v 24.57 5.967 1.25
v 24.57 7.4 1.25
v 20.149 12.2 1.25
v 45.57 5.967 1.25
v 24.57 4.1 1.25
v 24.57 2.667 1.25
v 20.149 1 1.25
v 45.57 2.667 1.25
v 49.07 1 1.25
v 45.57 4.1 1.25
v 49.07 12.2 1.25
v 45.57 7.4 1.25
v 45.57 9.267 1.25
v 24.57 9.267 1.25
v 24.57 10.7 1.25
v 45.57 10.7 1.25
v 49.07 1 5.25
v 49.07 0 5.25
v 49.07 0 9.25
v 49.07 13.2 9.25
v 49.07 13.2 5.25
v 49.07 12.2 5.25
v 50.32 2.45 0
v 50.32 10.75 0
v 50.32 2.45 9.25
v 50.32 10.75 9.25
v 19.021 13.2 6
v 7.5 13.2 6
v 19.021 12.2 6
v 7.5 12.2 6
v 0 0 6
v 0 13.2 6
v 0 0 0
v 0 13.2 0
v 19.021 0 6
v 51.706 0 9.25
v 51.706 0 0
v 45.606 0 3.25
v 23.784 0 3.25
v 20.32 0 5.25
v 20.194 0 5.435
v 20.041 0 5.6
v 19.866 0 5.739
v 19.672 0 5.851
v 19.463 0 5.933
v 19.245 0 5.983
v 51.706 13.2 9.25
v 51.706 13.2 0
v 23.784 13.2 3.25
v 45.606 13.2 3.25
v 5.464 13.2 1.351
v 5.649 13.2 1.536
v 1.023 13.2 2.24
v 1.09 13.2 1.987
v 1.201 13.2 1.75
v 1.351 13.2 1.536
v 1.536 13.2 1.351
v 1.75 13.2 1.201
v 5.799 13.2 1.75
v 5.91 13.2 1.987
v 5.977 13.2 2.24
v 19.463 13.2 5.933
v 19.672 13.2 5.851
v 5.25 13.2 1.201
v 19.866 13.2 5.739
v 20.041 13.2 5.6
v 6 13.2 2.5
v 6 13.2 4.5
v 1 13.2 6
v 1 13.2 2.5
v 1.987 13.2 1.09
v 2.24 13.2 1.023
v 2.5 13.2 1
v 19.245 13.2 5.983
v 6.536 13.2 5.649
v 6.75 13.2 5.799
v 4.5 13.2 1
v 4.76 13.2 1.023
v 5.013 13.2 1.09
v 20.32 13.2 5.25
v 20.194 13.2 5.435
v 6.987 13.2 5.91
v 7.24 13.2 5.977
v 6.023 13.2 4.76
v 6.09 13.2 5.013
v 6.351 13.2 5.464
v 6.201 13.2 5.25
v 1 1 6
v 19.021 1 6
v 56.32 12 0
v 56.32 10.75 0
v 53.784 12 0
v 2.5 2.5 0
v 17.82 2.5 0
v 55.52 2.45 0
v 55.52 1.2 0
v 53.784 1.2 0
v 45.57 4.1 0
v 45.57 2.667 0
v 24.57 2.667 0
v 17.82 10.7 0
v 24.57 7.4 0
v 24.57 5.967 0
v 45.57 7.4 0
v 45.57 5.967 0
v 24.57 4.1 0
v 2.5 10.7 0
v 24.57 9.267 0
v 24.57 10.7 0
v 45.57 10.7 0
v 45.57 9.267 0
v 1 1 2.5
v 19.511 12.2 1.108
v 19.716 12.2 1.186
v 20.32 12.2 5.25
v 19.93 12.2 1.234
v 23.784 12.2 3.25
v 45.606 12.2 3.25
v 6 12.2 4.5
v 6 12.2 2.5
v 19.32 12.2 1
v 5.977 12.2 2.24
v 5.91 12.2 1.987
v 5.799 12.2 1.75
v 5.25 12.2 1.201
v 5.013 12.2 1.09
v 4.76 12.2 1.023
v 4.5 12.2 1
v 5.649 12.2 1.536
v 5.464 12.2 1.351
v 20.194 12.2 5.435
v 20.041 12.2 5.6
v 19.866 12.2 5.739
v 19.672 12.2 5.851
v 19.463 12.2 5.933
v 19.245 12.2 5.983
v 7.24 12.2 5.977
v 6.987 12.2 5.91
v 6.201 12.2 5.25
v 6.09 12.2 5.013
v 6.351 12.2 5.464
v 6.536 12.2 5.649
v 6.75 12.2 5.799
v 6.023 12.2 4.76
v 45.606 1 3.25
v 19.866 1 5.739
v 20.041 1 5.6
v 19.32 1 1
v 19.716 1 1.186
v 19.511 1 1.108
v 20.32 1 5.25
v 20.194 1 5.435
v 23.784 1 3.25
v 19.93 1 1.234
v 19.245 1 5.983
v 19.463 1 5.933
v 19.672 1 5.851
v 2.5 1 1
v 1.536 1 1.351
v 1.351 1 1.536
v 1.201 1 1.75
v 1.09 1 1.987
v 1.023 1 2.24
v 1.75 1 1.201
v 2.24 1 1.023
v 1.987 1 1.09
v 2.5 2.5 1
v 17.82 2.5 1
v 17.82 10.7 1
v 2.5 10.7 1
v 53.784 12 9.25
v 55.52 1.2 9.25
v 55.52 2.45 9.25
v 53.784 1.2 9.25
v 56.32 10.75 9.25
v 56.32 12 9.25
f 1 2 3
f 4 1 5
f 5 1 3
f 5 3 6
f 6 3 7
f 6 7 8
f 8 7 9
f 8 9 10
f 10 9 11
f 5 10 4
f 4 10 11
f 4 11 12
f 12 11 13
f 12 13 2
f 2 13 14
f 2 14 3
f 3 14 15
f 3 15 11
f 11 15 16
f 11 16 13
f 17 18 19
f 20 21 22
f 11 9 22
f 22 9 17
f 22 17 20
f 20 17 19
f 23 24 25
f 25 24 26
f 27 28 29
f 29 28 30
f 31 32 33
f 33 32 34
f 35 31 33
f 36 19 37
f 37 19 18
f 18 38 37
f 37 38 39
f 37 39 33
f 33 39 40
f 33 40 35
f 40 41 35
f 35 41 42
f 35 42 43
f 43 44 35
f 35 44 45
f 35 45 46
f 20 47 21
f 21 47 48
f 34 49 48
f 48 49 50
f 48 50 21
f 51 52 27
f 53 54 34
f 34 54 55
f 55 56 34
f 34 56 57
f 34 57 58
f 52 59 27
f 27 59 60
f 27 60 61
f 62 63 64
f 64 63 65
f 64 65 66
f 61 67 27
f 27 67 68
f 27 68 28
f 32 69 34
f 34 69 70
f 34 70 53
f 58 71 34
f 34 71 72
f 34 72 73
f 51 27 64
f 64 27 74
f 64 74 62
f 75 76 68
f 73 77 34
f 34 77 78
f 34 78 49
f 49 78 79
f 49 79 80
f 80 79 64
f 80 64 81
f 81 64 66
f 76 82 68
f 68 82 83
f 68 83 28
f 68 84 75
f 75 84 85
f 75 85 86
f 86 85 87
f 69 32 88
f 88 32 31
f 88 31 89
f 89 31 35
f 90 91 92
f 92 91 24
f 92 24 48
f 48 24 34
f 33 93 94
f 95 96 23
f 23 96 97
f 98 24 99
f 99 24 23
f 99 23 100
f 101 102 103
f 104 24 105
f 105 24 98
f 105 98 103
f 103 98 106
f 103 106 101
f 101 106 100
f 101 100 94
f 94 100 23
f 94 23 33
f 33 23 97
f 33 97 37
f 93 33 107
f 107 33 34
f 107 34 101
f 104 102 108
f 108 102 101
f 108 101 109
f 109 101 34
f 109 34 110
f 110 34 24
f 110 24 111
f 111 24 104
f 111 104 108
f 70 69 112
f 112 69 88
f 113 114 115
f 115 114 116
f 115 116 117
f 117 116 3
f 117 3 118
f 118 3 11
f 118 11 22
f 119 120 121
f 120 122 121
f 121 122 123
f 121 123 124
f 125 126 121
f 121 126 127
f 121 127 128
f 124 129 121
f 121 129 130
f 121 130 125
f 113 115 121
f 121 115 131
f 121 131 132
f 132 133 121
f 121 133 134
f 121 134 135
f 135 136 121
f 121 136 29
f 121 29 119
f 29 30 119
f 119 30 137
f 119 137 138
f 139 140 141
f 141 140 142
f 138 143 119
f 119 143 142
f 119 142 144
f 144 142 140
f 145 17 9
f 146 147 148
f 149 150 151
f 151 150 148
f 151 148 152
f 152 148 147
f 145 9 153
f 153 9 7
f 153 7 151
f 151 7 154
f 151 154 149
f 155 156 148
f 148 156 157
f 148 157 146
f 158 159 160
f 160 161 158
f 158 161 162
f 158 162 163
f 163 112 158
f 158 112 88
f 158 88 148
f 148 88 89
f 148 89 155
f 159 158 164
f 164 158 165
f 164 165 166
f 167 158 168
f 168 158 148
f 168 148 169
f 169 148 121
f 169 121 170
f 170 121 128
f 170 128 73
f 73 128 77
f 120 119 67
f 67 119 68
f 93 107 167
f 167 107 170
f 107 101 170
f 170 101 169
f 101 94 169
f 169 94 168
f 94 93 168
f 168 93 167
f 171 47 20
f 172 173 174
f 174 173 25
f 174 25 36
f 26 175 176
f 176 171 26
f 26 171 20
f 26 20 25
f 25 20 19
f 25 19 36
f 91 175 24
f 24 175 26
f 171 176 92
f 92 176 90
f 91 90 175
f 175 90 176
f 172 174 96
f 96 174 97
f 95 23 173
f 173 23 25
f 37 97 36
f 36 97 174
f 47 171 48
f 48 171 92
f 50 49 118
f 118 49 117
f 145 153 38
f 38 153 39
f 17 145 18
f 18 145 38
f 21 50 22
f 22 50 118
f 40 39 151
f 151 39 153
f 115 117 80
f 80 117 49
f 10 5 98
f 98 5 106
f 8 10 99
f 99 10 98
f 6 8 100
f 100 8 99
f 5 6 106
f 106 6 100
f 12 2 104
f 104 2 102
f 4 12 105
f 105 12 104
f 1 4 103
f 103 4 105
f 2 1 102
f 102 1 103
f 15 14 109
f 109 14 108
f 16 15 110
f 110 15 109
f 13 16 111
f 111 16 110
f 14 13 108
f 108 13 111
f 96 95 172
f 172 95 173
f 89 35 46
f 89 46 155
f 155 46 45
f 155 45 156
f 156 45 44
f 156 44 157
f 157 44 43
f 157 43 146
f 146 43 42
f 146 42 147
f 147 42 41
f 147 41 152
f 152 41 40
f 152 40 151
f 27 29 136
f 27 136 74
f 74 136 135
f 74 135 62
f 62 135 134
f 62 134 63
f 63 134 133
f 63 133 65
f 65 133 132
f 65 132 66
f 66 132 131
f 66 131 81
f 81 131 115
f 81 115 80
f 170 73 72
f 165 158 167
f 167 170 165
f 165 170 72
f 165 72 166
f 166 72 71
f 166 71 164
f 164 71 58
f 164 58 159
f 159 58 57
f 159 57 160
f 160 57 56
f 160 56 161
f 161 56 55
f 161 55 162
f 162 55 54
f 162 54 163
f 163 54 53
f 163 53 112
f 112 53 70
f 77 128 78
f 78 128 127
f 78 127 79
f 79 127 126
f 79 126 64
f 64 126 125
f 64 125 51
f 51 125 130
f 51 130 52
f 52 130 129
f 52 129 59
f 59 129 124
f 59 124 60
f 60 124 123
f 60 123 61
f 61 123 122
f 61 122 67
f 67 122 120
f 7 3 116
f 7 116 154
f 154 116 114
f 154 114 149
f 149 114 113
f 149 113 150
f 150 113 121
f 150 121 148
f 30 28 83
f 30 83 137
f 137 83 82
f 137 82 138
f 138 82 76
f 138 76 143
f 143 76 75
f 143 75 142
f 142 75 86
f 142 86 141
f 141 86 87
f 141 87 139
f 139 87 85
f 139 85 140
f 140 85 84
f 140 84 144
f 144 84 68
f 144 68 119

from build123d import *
from OCP.BRepFilletAPI import BRepFilletAPI_MakeChamfer

# Parameters (mm, degrees)
ESQUISSE1_W             = 20.32
ESQUISSE1_H             = 13.2
BOSS_EXTRU_1_DEPTH      = 6
ESQUISSE2_W             = 18.32
ESQUISSE2_H             = 11.2
ENL_V_MAT_EXTRU_1_DEPTH = 5
ESQUISSE3_W             = 5
ESQUISSE3_H             = 1
ENL_V_MAT_EXTRU_2_DEPTH = 5
ESQUISSE4_W             = 15.32
ESQUISSE4_H             = 8.2
ENL_V_MAT_EXTRU_3_DEPTH = 25.741511676
ESQUISSE6_W             = 1
ESQUISSE6_H             = 11.2
ENL_V_MAT_EXTRU_4_DEPTH = 4.75
ESQUISSE7_W             = 30
ESQUISSE7_H             = 13.2
BOSS_EXTRU_2_DEPTH      = 1.25
ESQUISSE8_W             = 1.25
ESQUISSE8_H             = 13.2
BOSS_EXTRU_3_DEPTH      = 8
ESQUISSE9_W             = 9.25
ESQUISSE9_H             = 1.25
BOSS_EXTRU_4_DEPTH      = 6
CHANFREIN1_SIZE         = 2
CHANFREIN1_SIZE_2       = 3.464101615
ESQUISSE10_W            = 28.75
ESQUISSE10_H            = 1
BOSS_EXTRU_5_DEPTH      = 2
CHANFREIN2_SIZE         = 2
CHANFREIN2_SIZE2        = 3.464101615
ESQUISSE11_W            = 21
ESQUISSE11_H            = 1.433492253
ENL_V_MAT_EXTRU_5_DEPTH = 2
ESQUISSE12_W            = 0.8
ESQUISSE12_H            = 9.25
ENL_V_MAT_EXTRU_6_DEPTH = 2
CONG_1_R                = 1.5


with BuildPart() as part:
    # Esquisse1 → Boss.-Extru.1 (new body)
    with BuildSketch(Plane.XY):
        with Locations((10.16, 6.6)):
            Rectangle(ESQUISSE1_W, ESQUISSE1_H)
    extrude(amount=BOSS_EXTRU_1_DEPTH)

    # Esquisse2 → Enlèv. mat.-Extru.1 (cut)
    with BuildSketch(Plane.XY.offset(6)):
        with Locations((10.16, 6.6)):
            Rectangle(ESQUISSE2_W, ESQUISSE2_H)
    extrude(amount=-ENL_V_MAT_EXTRU_1_DEPTH, mode=Mode.SUBTRACT)

    # Esquisse3 → Enlèv. mat.-Extru.2 (cut)
    with BuildSketch(Plane.XY.offset(6)):
        with Locations((3.5, 12.7)):
            Rectangle(ESQUISSE3_W, ESQUISSE3_H)
    extrude(amount=-ENL_V_MAT_EXTRU_2_DEPTH, mode=Mode.SUBTRACT)

    # Esquisse4 → Enlèv. mat.-Extru.3 (cut, through all)
    with BuildSketch(Plane.XY.offset(1)):
        with Locations((10.16, 6.6)):
            Rectangle(ESQUISSE4_W, ESQUISSE4_H)
    extrude(amount=-ENL_V_MAT_EXTRU_3_DEPTH, mode=Mode.SUBTRACT)

    # Esquisse6 → Enlèv. mat.-Extru.4 (cut)
    with BuildSketch(Plane.XY.offset(6)):
        with Locations((19.82, 6.6)):
            Rectangle(ESQUISSE6_W, ESQUISSE6_H)
    extrude(amount=-ENL_V_MAT_EXTRU_4_DEPTH, mode=Mode.SUBTRACT)

    # Esquisse7 → Boss.-Extru.2 (add)
    with BuildSketch(Plane(origin=(0, 0, 0), x_dir=(-1, 0, 0), z_dir=(0, 0, -1))):
        with Locations((-35.32, 6.6)):
            Rectangle(ESQUISSE7_W, ESQUISSE7_H)
    extrude(amount=-BOSS_EXTRU_2_DEPTH)

    # Esquisse8 → Boss.-Extru.3 (add)
    with BuildSketch(Plane.XY.offset(1.25)):
        with Locations((49.695, 6.6)):
            Rectangle(ESQUISSE8_W, ESQUISSE8_H)
    extrude(amount=BOSS_EXTRU_3_DEPTH)

    # Esquisse9 → Boss.-Extru.4 (add)
    with BuildSketch(Plane(origin=(50.32, 0, 0), x_dir=(0, 0, -1), z_dir=(1, 0, 0))):
        with Locations((-4.625, 11.375)):
            Rectangle(ESQUISSE9_W, ESQUISSE9_H)
        with Locations((-4.625, 1.825)):
            Rectangle(ESQUISSE9_W, ESQUISSE9_H)
    extrude(amount=BOSS_EXTRU_4_DEPTH)

    # Chanfrein1
    # the kernel refuses this chamfer: 3.464101615, 2 mm, written as the material it adds along each edge
    with BuildSketch(Plane(origin=(50.32, 12, 9.25), x_dir=(0, 1, 0), z_dir=(0, 0, -1))) as chanfrein1_piece_1_section:
        Polygon((CHANFREIN1_SIZE, 0), (0, CHANFREIN1_SIZE_2), (0, 0), align=None)
    chanfrein1_piece_1 = extrude(amount=9.25, mode=Mode.PRIVATE)
    chanfrein1_piece_1 = split(chanfrein1_piece_1, bisect_by=Plane(origin=(50.32, 13.2, 9.25), z_dir=(0, -1, 0)), keep=Keep.TOP, mode=Mode.PRIVATE)
    add(chanfrein1_piece_1)
    with BuildSketch(Plane(origin=(50.32, 1.2, 0), x_dir=(0, -1, 0), z_dir=(0, 0, 1))) as chanfrein1_piece_2_section:
        Polygon((CHANFREIN1_SIZE, 0), (0, CHANFREIN1_SIZE_2), (0, 0), align=None)
    chanfrein1_piece_2 = extrude(amount=9.25, mode=Mode.PRIVATE)
    chanfrein1_piece_2 = split(chanfrein1_piece_2, bisect_by=Plane(origin=(50.32, 0, 0), z_dir=(0, 1, 0)), keep=Keep.TOP, mode=Mode.PRIVATE)
    add(chanfrein1_piece_2)

    # Esquisse10 → Boss.-Extru.5 (add)
    with BuildSketch(Plane.XY.offset(1.25)):
        with Locations((34.695, 12.7)):
            Rectangle(ESQUISSE10_W, ESQUISSE10_H)
        with Locations((34.695, 0.5)):
            Rectangle(ESQUISSE10_W, ESQUISSE10_H)
    extrude(amount=BOSS_EXTRU_5_DEPTH)

    # Chanfrein2: one chamfer whose edges measure the first distance from different faces: ONE call of the kernel's chamfer builder (chamfer() names one face for all edges)
    chanfrein2_edges_1 = [part.edges().sort_by_distance(p)[0] for p in [
        (20.32, 12.7, 3.25),
    ]]
    chanfrein2_side_1 = [part.faces().sort_by_distance(p)[0] for p in [
        (20.32, 12.7, 4.625),
    ]]
    chanfrein2_edges_2 = [part.edges().sort_by_distance(p)[0] for p in [
        (49.07, 12.7, 3.25),
        (49.07, 0.5, 3.25),
    ]]
    chanfrein2_side_2 = [part.faces().sort_by_distance(p)[0] for p in [
        (49.07, 6.6, 5.368110236),
    ]]
    chanfrein2_edges_3 = [part.edges().sort_by_distance(p)[0] for p in [
        (20.32, 0.5, 3.25),
    ]]
    chanfrein2_side_3 = [part.faces().sort_by_distance(p)[0] for p in [
        (20.32, 0.5, 4.625),
    ]]
    chanfrein2 = BRepFilletAPI_MakeChamfer(part.part.solid().wrapped)
    for e in chanfrein2_edges_1:
        chanfrein2.Add(CHANFREIN2_SIZE, CHANFREIN2_SIZE2, e.wrapped, chanfrein2_side_1[0].wrapped)  # the first distance lies on this face
    for e in chanfrein2_edges_2:
        chanfrein2.Add(CHANFREIN2_SIZE, CHANFREIN2_SIZE2, e.wrapped, chanfrein2_side_2[0].wrapped)  # the first distance lies on this face
    for e in chanfrein2_edges_3:
        chanfrein2.Add(CHANFREIN2_SIZE, CHANFREIN2_SIZE2, e.wrapped, chanfrein2_side_3[0].wrapped)  # the first distance lies on this face
    add(Compound.cast(chanfrein2.Shape()), mode=Mode.REPLACE)

    # Esquisse11 → Enlèv. mat.-Extru.5 (cut)
    with BuildSketch(Plane.XY.offset(1.25)):
        with Locations((35.07, 9.983253874)):
            Rectangle(ESQUISSE11_W, ESQUISSE11_H)
        with Locations((35.07, 6.683253873)):
            Rectangle(ESQUISSE11_W, ESQUISSE11_H)
        with Locations((35.07, 3.383253874)):
            Rectangle(ESQUISSE11_W, ESQUISSE11_H)
    extrude(amount=-ENL_V_MAT_EXTRU_5_DEPTH, mode=Mode.SUBTRACT)

    # Esquisse12 → Enlèv. mat.-Extru.6 (cut)
    with BuildSketch(Plane(origin=(0, 1.2, 0), x_dir=(-1, 0, 0), z_dir=(0, -1, 0))):
        with Locations((-55.92, -4.625)):
            Rectangle(ESQUISSE12_W, ESQUISSE12_H)
    extrude(amount=-ENL_V_MAT_EXTRU_6_DEPTH, mode=Mode.SUBTRACT)

    # Congé1
    # the kernel refuses this fillet: 1.5 mm, written as the material it adds along each edge
    with BuildSketch(Plane(origin=(1, 1, 1), x_dir=(0, 0, 1), z_dir=(0, 1, 0))) as cong_1_piece_1:
        with BuildLine():
            CenterArc((CONG_1_R, CONG_1_R), CONG_1_R, 180, 90)
            Line((0, CONG_1_R), (0, 0))
            Line((0, 0), (CONG_1_R, 0))
        make_face()
    extrude(amount=12.2)
    with BuildSketch(Plane(origin=(6, 12.2, 1), x_dir=(-1, 0, 0), z_dir=(0, 1, 0))) as cong_1_piece_2:
        with BuildLine():
            CenterArc((CONG_1_R, CONG_1_R), CONG_1_R, 180, 90)
            Line((0, CONG_1_R), (0, 0))
            Line((0, 0), (CONG_1_R, 0))
        make_face()
    extrude(amount=1)
    # the kernel refuses this fillet: 1.5 mm, written as the material it takes off along each edge
    with BuildSketch(Plane(origin=(20.32, -3.247595264, 6), x_dir=(-1, 0, 0), z_dir=(0, 1, 0)), Plane(origin=(20.32, 8.952404736, 6), x_dir=(-1, 0, 0), z_dir=(0, 1, 0))) as cong_1_2_piece_1:
        with BuildLine():
            CenterArc((1.299038106, -1.5), CONG_1_R, 90, 60)
            Line((0, -0.75), (0, 0))
            Line((0, 0), (1.299038106, 0))
        make_face()
    extrude(amount=7.495190528, mode=Mode.SUBTRACT)
    with BuildSketch(Plane(origin=(19.32, 1, 1.25), x_dir=(1, 0, 0), z_dir=(0, 1, 0))) as cong_1_2_piece_2:
        with BuildLine():
            CenterArc((0.829156198, 1.5), CONG_1_R, 236.442690238, 33.557309762)
            Line((0, 0.25), (0, 0))
            Line((0, 0), (0.829156198, 0))
        make_face()
    extrude(amount=11.2, mode=Mode.SUBTRACT)
    with BuildSketch(Plane(origin=(6, 8.45, 6), x_dir=(0, 0, -1), z_dir=(0, 1, 0))) as cong_1_2_piece_3:
        with BuildLine():
            CenterArc((CONG_1_R, -CONG_1_R), CONG_1_R, 90, 90)
            Line((0, -CONG_1_R), (0, 0))
            Line((0, 0), (CONG_1_R, 0))
        make_face()
    extrude(amount=8.5, mode=Mode.SUBTRACT)


solid = part.part
